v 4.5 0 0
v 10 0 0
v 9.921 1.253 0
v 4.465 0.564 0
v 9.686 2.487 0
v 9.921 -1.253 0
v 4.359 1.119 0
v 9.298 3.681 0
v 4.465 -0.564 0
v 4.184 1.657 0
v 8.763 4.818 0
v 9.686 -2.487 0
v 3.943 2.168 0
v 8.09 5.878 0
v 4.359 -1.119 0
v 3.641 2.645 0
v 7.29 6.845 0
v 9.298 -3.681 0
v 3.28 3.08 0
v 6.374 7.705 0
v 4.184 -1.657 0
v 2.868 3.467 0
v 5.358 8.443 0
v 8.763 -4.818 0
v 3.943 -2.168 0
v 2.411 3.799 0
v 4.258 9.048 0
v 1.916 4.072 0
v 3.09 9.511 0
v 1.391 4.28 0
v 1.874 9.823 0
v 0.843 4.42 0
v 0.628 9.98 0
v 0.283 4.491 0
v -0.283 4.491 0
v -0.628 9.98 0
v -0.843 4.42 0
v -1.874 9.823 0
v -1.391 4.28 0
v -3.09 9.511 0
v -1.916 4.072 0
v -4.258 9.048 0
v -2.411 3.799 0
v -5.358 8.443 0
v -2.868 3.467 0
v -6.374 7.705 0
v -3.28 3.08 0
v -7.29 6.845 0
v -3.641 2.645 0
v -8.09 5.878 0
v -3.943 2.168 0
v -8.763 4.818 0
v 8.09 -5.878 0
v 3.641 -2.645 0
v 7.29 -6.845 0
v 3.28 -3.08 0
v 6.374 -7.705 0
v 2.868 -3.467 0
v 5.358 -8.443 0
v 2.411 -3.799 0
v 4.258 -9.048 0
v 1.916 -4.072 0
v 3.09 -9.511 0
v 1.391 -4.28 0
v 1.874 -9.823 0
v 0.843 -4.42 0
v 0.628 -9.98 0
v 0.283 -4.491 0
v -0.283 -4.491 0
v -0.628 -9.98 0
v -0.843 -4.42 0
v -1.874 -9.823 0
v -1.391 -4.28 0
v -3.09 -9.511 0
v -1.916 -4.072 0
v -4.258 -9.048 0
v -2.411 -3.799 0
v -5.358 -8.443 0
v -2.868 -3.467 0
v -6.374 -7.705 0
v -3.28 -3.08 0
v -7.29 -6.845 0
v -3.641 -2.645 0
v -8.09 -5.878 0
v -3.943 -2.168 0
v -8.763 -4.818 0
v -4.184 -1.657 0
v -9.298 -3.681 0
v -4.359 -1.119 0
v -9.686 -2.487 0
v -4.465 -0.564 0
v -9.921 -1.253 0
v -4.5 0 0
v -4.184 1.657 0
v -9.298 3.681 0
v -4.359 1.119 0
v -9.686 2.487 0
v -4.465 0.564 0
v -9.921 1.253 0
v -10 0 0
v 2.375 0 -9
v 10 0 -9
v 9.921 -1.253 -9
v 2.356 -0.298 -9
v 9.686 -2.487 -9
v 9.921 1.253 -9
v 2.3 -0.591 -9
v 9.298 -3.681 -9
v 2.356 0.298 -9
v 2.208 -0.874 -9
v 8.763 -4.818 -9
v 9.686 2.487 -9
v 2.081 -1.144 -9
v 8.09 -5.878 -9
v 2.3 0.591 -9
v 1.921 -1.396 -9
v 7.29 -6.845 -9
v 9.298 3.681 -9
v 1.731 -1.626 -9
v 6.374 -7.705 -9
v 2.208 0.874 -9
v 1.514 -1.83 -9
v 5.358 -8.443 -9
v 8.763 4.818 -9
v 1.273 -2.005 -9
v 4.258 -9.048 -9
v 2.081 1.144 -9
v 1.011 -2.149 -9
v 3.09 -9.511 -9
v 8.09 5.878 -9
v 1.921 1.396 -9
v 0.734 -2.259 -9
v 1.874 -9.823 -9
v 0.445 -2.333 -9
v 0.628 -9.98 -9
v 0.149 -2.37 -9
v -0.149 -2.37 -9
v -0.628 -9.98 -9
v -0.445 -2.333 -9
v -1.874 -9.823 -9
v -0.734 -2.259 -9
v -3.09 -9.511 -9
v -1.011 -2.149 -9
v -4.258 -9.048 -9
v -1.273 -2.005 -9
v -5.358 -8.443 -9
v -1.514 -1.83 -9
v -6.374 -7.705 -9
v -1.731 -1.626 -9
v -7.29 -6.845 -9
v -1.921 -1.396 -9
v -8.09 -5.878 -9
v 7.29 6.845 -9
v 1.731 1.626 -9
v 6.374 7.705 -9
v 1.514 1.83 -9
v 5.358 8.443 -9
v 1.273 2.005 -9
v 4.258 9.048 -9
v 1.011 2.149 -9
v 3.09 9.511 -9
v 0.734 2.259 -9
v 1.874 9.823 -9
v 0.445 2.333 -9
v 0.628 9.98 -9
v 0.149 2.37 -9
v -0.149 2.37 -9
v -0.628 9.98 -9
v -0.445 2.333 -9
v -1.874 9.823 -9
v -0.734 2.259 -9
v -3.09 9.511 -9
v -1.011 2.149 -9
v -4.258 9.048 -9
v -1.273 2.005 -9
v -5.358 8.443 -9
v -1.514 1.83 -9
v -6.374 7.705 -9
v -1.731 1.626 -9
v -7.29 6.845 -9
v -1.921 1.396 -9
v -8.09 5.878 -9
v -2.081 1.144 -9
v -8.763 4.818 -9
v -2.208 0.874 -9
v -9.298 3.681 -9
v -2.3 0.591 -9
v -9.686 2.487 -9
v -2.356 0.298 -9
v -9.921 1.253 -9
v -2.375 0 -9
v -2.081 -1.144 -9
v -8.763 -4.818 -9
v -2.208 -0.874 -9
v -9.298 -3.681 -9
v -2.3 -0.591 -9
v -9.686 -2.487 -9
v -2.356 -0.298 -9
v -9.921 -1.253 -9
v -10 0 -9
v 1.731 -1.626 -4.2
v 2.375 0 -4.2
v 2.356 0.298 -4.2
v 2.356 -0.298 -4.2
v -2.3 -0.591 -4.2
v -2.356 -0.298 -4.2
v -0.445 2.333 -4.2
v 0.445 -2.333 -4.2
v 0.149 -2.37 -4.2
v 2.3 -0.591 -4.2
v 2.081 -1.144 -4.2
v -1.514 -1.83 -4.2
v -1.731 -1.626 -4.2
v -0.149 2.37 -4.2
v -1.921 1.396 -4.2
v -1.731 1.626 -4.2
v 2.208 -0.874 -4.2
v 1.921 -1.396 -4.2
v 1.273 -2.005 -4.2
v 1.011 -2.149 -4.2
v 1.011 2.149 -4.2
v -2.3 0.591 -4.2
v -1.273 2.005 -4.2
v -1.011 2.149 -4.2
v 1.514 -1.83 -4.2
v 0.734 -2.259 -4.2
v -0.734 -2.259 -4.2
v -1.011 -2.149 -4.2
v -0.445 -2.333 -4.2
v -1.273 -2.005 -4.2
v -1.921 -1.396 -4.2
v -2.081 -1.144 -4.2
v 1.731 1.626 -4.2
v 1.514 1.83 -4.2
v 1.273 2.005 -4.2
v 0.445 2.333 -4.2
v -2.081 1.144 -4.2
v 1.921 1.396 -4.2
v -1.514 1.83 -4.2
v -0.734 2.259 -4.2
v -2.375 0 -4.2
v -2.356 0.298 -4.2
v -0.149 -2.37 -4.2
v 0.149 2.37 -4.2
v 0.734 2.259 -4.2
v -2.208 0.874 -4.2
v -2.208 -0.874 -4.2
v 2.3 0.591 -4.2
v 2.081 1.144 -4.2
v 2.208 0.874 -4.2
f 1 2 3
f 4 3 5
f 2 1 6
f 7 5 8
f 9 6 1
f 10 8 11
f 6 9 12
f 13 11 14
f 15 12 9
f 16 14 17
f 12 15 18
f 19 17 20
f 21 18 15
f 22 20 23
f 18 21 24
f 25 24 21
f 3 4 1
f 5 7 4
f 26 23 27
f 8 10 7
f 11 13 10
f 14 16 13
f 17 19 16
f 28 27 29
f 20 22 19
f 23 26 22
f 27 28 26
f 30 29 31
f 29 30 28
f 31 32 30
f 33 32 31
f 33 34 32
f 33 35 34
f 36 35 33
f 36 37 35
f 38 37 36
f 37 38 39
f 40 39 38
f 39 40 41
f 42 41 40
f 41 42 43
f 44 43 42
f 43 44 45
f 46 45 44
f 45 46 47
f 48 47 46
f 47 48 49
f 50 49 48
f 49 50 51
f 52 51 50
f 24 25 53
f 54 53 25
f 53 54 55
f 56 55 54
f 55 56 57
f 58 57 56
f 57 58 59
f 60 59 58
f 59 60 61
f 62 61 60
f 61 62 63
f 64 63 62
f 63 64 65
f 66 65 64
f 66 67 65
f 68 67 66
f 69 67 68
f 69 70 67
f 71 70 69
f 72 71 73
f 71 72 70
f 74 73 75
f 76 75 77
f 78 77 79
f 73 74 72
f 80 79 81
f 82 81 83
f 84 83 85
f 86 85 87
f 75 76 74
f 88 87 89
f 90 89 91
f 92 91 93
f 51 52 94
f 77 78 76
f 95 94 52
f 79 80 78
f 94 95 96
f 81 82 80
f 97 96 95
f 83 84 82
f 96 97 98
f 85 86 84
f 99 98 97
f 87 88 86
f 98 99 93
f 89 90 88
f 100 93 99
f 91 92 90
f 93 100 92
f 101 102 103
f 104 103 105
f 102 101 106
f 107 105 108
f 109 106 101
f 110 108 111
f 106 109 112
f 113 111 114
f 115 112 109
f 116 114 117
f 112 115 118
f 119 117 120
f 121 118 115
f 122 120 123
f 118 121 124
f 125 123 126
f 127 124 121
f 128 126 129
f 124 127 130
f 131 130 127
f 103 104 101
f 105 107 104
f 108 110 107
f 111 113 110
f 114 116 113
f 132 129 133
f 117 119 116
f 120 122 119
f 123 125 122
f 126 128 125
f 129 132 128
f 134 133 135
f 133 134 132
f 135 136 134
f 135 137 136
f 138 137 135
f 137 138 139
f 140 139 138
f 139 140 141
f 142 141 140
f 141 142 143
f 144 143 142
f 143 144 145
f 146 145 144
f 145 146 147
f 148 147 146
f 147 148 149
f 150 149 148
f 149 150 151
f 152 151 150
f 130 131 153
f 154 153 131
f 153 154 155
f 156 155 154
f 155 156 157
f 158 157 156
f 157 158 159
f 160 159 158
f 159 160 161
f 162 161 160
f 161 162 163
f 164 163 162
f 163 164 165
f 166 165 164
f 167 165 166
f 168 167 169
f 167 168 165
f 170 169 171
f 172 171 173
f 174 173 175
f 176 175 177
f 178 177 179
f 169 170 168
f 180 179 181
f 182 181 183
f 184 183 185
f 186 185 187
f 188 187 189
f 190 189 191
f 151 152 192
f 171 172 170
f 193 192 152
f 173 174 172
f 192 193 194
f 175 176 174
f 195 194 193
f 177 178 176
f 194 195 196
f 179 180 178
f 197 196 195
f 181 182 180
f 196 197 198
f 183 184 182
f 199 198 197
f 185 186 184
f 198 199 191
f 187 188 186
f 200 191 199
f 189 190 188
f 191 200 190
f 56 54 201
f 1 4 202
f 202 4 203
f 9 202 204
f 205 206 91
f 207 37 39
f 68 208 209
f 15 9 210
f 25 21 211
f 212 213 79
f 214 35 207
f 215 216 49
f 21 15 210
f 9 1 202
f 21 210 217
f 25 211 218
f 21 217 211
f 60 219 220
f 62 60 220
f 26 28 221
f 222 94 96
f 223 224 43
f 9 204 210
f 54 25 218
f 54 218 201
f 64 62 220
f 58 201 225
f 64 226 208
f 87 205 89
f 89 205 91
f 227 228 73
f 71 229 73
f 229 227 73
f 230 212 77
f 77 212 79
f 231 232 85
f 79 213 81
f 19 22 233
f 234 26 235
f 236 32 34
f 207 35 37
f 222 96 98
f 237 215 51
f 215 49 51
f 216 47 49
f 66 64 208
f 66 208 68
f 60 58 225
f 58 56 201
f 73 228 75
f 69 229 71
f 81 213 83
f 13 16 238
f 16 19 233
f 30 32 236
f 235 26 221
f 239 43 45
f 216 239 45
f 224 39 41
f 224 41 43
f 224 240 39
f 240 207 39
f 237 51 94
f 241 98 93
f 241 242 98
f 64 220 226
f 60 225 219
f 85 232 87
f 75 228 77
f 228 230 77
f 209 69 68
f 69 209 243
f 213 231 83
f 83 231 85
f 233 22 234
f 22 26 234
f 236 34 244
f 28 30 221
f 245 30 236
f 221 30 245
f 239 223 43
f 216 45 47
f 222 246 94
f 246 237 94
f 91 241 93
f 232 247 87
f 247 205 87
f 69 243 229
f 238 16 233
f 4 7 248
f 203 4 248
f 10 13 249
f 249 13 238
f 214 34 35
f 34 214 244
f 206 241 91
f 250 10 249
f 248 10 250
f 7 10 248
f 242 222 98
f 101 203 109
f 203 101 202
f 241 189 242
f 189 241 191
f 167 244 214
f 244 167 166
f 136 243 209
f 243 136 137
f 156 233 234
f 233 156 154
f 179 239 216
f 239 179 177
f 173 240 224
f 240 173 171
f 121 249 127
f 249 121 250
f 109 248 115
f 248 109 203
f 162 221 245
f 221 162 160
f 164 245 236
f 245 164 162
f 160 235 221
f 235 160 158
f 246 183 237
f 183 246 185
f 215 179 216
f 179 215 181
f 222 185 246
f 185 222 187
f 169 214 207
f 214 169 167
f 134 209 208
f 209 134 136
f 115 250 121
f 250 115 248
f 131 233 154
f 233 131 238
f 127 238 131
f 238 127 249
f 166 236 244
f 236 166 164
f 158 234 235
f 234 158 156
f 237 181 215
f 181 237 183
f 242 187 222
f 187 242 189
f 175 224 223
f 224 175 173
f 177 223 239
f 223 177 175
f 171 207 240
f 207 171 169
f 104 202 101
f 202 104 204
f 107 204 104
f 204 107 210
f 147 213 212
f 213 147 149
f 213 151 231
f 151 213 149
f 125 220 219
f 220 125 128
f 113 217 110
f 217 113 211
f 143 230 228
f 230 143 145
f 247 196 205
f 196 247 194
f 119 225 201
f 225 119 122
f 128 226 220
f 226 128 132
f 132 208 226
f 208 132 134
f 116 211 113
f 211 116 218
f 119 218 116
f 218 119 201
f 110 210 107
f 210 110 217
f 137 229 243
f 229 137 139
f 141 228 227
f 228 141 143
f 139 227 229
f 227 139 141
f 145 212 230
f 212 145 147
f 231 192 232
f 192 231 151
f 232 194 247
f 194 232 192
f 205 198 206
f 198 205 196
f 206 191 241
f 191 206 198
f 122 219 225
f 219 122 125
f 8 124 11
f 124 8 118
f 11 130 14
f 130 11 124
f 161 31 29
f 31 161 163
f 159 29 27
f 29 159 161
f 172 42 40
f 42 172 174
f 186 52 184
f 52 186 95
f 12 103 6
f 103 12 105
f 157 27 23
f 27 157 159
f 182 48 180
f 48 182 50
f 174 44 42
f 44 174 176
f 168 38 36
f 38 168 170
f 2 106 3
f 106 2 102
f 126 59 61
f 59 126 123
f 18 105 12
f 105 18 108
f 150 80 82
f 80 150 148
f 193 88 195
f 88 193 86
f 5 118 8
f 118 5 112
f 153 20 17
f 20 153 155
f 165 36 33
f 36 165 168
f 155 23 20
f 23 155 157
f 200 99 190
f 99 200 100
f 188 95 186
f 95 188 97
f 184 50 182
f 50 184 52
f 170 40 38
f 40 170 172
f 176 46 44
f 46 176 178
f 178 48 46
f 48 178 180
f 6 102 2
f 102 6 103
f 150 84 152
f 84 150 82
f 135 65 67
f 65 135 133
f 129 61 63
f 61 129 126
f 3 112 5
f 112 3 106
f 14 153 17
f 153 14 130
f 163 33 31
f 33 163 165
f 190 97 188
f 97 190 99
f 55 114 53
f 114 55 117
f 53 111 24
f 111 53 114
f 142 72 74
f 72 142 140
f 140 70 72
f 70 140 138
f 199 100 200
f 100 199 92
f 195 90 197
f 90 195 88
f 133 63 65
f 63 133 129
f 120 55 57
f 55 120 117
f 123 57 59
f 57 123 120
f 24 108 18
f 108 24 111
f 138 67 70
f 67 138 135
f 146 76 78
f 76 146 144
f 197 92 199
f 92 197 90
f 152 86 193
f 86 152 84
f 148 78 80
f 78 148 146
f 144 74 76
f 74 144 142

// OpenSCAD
$fn = 50;


difference() {
	union() {
		translate(v = [0, 0, -9.0000000000]) {
			cylinder(h = 9, r = 10.0000000000);
		}
		cylinder(h = 0, r = 16.0000000000);
	}
	union() {
		translate(v = [0, 0, 0]) {
			rotate(a = [0, 0, 0]) {
				difference() {
					union() {
						#translate(v = [0, 0, -9.0000000000]) {
							cylinder(h = 9, r = 2.2500000000);
						}
						#translate(v = [0, 0, -4.2000000000]) {
							cylinder(h = 4.2000000000, r1 = 2.3750000000, r2 = 4.5000000000);
						}
						#translate(v = [0, 0, -9.0000000000]) {
							cylinder(h = 9, r = 2.3750000000);
						}
						#translate(v = [0, 0, -9.0000000000]) {
							cylinder(h = 9, r = 2.2500000000);
						}
					}
					union();
				}
			}
		}
	}
}
